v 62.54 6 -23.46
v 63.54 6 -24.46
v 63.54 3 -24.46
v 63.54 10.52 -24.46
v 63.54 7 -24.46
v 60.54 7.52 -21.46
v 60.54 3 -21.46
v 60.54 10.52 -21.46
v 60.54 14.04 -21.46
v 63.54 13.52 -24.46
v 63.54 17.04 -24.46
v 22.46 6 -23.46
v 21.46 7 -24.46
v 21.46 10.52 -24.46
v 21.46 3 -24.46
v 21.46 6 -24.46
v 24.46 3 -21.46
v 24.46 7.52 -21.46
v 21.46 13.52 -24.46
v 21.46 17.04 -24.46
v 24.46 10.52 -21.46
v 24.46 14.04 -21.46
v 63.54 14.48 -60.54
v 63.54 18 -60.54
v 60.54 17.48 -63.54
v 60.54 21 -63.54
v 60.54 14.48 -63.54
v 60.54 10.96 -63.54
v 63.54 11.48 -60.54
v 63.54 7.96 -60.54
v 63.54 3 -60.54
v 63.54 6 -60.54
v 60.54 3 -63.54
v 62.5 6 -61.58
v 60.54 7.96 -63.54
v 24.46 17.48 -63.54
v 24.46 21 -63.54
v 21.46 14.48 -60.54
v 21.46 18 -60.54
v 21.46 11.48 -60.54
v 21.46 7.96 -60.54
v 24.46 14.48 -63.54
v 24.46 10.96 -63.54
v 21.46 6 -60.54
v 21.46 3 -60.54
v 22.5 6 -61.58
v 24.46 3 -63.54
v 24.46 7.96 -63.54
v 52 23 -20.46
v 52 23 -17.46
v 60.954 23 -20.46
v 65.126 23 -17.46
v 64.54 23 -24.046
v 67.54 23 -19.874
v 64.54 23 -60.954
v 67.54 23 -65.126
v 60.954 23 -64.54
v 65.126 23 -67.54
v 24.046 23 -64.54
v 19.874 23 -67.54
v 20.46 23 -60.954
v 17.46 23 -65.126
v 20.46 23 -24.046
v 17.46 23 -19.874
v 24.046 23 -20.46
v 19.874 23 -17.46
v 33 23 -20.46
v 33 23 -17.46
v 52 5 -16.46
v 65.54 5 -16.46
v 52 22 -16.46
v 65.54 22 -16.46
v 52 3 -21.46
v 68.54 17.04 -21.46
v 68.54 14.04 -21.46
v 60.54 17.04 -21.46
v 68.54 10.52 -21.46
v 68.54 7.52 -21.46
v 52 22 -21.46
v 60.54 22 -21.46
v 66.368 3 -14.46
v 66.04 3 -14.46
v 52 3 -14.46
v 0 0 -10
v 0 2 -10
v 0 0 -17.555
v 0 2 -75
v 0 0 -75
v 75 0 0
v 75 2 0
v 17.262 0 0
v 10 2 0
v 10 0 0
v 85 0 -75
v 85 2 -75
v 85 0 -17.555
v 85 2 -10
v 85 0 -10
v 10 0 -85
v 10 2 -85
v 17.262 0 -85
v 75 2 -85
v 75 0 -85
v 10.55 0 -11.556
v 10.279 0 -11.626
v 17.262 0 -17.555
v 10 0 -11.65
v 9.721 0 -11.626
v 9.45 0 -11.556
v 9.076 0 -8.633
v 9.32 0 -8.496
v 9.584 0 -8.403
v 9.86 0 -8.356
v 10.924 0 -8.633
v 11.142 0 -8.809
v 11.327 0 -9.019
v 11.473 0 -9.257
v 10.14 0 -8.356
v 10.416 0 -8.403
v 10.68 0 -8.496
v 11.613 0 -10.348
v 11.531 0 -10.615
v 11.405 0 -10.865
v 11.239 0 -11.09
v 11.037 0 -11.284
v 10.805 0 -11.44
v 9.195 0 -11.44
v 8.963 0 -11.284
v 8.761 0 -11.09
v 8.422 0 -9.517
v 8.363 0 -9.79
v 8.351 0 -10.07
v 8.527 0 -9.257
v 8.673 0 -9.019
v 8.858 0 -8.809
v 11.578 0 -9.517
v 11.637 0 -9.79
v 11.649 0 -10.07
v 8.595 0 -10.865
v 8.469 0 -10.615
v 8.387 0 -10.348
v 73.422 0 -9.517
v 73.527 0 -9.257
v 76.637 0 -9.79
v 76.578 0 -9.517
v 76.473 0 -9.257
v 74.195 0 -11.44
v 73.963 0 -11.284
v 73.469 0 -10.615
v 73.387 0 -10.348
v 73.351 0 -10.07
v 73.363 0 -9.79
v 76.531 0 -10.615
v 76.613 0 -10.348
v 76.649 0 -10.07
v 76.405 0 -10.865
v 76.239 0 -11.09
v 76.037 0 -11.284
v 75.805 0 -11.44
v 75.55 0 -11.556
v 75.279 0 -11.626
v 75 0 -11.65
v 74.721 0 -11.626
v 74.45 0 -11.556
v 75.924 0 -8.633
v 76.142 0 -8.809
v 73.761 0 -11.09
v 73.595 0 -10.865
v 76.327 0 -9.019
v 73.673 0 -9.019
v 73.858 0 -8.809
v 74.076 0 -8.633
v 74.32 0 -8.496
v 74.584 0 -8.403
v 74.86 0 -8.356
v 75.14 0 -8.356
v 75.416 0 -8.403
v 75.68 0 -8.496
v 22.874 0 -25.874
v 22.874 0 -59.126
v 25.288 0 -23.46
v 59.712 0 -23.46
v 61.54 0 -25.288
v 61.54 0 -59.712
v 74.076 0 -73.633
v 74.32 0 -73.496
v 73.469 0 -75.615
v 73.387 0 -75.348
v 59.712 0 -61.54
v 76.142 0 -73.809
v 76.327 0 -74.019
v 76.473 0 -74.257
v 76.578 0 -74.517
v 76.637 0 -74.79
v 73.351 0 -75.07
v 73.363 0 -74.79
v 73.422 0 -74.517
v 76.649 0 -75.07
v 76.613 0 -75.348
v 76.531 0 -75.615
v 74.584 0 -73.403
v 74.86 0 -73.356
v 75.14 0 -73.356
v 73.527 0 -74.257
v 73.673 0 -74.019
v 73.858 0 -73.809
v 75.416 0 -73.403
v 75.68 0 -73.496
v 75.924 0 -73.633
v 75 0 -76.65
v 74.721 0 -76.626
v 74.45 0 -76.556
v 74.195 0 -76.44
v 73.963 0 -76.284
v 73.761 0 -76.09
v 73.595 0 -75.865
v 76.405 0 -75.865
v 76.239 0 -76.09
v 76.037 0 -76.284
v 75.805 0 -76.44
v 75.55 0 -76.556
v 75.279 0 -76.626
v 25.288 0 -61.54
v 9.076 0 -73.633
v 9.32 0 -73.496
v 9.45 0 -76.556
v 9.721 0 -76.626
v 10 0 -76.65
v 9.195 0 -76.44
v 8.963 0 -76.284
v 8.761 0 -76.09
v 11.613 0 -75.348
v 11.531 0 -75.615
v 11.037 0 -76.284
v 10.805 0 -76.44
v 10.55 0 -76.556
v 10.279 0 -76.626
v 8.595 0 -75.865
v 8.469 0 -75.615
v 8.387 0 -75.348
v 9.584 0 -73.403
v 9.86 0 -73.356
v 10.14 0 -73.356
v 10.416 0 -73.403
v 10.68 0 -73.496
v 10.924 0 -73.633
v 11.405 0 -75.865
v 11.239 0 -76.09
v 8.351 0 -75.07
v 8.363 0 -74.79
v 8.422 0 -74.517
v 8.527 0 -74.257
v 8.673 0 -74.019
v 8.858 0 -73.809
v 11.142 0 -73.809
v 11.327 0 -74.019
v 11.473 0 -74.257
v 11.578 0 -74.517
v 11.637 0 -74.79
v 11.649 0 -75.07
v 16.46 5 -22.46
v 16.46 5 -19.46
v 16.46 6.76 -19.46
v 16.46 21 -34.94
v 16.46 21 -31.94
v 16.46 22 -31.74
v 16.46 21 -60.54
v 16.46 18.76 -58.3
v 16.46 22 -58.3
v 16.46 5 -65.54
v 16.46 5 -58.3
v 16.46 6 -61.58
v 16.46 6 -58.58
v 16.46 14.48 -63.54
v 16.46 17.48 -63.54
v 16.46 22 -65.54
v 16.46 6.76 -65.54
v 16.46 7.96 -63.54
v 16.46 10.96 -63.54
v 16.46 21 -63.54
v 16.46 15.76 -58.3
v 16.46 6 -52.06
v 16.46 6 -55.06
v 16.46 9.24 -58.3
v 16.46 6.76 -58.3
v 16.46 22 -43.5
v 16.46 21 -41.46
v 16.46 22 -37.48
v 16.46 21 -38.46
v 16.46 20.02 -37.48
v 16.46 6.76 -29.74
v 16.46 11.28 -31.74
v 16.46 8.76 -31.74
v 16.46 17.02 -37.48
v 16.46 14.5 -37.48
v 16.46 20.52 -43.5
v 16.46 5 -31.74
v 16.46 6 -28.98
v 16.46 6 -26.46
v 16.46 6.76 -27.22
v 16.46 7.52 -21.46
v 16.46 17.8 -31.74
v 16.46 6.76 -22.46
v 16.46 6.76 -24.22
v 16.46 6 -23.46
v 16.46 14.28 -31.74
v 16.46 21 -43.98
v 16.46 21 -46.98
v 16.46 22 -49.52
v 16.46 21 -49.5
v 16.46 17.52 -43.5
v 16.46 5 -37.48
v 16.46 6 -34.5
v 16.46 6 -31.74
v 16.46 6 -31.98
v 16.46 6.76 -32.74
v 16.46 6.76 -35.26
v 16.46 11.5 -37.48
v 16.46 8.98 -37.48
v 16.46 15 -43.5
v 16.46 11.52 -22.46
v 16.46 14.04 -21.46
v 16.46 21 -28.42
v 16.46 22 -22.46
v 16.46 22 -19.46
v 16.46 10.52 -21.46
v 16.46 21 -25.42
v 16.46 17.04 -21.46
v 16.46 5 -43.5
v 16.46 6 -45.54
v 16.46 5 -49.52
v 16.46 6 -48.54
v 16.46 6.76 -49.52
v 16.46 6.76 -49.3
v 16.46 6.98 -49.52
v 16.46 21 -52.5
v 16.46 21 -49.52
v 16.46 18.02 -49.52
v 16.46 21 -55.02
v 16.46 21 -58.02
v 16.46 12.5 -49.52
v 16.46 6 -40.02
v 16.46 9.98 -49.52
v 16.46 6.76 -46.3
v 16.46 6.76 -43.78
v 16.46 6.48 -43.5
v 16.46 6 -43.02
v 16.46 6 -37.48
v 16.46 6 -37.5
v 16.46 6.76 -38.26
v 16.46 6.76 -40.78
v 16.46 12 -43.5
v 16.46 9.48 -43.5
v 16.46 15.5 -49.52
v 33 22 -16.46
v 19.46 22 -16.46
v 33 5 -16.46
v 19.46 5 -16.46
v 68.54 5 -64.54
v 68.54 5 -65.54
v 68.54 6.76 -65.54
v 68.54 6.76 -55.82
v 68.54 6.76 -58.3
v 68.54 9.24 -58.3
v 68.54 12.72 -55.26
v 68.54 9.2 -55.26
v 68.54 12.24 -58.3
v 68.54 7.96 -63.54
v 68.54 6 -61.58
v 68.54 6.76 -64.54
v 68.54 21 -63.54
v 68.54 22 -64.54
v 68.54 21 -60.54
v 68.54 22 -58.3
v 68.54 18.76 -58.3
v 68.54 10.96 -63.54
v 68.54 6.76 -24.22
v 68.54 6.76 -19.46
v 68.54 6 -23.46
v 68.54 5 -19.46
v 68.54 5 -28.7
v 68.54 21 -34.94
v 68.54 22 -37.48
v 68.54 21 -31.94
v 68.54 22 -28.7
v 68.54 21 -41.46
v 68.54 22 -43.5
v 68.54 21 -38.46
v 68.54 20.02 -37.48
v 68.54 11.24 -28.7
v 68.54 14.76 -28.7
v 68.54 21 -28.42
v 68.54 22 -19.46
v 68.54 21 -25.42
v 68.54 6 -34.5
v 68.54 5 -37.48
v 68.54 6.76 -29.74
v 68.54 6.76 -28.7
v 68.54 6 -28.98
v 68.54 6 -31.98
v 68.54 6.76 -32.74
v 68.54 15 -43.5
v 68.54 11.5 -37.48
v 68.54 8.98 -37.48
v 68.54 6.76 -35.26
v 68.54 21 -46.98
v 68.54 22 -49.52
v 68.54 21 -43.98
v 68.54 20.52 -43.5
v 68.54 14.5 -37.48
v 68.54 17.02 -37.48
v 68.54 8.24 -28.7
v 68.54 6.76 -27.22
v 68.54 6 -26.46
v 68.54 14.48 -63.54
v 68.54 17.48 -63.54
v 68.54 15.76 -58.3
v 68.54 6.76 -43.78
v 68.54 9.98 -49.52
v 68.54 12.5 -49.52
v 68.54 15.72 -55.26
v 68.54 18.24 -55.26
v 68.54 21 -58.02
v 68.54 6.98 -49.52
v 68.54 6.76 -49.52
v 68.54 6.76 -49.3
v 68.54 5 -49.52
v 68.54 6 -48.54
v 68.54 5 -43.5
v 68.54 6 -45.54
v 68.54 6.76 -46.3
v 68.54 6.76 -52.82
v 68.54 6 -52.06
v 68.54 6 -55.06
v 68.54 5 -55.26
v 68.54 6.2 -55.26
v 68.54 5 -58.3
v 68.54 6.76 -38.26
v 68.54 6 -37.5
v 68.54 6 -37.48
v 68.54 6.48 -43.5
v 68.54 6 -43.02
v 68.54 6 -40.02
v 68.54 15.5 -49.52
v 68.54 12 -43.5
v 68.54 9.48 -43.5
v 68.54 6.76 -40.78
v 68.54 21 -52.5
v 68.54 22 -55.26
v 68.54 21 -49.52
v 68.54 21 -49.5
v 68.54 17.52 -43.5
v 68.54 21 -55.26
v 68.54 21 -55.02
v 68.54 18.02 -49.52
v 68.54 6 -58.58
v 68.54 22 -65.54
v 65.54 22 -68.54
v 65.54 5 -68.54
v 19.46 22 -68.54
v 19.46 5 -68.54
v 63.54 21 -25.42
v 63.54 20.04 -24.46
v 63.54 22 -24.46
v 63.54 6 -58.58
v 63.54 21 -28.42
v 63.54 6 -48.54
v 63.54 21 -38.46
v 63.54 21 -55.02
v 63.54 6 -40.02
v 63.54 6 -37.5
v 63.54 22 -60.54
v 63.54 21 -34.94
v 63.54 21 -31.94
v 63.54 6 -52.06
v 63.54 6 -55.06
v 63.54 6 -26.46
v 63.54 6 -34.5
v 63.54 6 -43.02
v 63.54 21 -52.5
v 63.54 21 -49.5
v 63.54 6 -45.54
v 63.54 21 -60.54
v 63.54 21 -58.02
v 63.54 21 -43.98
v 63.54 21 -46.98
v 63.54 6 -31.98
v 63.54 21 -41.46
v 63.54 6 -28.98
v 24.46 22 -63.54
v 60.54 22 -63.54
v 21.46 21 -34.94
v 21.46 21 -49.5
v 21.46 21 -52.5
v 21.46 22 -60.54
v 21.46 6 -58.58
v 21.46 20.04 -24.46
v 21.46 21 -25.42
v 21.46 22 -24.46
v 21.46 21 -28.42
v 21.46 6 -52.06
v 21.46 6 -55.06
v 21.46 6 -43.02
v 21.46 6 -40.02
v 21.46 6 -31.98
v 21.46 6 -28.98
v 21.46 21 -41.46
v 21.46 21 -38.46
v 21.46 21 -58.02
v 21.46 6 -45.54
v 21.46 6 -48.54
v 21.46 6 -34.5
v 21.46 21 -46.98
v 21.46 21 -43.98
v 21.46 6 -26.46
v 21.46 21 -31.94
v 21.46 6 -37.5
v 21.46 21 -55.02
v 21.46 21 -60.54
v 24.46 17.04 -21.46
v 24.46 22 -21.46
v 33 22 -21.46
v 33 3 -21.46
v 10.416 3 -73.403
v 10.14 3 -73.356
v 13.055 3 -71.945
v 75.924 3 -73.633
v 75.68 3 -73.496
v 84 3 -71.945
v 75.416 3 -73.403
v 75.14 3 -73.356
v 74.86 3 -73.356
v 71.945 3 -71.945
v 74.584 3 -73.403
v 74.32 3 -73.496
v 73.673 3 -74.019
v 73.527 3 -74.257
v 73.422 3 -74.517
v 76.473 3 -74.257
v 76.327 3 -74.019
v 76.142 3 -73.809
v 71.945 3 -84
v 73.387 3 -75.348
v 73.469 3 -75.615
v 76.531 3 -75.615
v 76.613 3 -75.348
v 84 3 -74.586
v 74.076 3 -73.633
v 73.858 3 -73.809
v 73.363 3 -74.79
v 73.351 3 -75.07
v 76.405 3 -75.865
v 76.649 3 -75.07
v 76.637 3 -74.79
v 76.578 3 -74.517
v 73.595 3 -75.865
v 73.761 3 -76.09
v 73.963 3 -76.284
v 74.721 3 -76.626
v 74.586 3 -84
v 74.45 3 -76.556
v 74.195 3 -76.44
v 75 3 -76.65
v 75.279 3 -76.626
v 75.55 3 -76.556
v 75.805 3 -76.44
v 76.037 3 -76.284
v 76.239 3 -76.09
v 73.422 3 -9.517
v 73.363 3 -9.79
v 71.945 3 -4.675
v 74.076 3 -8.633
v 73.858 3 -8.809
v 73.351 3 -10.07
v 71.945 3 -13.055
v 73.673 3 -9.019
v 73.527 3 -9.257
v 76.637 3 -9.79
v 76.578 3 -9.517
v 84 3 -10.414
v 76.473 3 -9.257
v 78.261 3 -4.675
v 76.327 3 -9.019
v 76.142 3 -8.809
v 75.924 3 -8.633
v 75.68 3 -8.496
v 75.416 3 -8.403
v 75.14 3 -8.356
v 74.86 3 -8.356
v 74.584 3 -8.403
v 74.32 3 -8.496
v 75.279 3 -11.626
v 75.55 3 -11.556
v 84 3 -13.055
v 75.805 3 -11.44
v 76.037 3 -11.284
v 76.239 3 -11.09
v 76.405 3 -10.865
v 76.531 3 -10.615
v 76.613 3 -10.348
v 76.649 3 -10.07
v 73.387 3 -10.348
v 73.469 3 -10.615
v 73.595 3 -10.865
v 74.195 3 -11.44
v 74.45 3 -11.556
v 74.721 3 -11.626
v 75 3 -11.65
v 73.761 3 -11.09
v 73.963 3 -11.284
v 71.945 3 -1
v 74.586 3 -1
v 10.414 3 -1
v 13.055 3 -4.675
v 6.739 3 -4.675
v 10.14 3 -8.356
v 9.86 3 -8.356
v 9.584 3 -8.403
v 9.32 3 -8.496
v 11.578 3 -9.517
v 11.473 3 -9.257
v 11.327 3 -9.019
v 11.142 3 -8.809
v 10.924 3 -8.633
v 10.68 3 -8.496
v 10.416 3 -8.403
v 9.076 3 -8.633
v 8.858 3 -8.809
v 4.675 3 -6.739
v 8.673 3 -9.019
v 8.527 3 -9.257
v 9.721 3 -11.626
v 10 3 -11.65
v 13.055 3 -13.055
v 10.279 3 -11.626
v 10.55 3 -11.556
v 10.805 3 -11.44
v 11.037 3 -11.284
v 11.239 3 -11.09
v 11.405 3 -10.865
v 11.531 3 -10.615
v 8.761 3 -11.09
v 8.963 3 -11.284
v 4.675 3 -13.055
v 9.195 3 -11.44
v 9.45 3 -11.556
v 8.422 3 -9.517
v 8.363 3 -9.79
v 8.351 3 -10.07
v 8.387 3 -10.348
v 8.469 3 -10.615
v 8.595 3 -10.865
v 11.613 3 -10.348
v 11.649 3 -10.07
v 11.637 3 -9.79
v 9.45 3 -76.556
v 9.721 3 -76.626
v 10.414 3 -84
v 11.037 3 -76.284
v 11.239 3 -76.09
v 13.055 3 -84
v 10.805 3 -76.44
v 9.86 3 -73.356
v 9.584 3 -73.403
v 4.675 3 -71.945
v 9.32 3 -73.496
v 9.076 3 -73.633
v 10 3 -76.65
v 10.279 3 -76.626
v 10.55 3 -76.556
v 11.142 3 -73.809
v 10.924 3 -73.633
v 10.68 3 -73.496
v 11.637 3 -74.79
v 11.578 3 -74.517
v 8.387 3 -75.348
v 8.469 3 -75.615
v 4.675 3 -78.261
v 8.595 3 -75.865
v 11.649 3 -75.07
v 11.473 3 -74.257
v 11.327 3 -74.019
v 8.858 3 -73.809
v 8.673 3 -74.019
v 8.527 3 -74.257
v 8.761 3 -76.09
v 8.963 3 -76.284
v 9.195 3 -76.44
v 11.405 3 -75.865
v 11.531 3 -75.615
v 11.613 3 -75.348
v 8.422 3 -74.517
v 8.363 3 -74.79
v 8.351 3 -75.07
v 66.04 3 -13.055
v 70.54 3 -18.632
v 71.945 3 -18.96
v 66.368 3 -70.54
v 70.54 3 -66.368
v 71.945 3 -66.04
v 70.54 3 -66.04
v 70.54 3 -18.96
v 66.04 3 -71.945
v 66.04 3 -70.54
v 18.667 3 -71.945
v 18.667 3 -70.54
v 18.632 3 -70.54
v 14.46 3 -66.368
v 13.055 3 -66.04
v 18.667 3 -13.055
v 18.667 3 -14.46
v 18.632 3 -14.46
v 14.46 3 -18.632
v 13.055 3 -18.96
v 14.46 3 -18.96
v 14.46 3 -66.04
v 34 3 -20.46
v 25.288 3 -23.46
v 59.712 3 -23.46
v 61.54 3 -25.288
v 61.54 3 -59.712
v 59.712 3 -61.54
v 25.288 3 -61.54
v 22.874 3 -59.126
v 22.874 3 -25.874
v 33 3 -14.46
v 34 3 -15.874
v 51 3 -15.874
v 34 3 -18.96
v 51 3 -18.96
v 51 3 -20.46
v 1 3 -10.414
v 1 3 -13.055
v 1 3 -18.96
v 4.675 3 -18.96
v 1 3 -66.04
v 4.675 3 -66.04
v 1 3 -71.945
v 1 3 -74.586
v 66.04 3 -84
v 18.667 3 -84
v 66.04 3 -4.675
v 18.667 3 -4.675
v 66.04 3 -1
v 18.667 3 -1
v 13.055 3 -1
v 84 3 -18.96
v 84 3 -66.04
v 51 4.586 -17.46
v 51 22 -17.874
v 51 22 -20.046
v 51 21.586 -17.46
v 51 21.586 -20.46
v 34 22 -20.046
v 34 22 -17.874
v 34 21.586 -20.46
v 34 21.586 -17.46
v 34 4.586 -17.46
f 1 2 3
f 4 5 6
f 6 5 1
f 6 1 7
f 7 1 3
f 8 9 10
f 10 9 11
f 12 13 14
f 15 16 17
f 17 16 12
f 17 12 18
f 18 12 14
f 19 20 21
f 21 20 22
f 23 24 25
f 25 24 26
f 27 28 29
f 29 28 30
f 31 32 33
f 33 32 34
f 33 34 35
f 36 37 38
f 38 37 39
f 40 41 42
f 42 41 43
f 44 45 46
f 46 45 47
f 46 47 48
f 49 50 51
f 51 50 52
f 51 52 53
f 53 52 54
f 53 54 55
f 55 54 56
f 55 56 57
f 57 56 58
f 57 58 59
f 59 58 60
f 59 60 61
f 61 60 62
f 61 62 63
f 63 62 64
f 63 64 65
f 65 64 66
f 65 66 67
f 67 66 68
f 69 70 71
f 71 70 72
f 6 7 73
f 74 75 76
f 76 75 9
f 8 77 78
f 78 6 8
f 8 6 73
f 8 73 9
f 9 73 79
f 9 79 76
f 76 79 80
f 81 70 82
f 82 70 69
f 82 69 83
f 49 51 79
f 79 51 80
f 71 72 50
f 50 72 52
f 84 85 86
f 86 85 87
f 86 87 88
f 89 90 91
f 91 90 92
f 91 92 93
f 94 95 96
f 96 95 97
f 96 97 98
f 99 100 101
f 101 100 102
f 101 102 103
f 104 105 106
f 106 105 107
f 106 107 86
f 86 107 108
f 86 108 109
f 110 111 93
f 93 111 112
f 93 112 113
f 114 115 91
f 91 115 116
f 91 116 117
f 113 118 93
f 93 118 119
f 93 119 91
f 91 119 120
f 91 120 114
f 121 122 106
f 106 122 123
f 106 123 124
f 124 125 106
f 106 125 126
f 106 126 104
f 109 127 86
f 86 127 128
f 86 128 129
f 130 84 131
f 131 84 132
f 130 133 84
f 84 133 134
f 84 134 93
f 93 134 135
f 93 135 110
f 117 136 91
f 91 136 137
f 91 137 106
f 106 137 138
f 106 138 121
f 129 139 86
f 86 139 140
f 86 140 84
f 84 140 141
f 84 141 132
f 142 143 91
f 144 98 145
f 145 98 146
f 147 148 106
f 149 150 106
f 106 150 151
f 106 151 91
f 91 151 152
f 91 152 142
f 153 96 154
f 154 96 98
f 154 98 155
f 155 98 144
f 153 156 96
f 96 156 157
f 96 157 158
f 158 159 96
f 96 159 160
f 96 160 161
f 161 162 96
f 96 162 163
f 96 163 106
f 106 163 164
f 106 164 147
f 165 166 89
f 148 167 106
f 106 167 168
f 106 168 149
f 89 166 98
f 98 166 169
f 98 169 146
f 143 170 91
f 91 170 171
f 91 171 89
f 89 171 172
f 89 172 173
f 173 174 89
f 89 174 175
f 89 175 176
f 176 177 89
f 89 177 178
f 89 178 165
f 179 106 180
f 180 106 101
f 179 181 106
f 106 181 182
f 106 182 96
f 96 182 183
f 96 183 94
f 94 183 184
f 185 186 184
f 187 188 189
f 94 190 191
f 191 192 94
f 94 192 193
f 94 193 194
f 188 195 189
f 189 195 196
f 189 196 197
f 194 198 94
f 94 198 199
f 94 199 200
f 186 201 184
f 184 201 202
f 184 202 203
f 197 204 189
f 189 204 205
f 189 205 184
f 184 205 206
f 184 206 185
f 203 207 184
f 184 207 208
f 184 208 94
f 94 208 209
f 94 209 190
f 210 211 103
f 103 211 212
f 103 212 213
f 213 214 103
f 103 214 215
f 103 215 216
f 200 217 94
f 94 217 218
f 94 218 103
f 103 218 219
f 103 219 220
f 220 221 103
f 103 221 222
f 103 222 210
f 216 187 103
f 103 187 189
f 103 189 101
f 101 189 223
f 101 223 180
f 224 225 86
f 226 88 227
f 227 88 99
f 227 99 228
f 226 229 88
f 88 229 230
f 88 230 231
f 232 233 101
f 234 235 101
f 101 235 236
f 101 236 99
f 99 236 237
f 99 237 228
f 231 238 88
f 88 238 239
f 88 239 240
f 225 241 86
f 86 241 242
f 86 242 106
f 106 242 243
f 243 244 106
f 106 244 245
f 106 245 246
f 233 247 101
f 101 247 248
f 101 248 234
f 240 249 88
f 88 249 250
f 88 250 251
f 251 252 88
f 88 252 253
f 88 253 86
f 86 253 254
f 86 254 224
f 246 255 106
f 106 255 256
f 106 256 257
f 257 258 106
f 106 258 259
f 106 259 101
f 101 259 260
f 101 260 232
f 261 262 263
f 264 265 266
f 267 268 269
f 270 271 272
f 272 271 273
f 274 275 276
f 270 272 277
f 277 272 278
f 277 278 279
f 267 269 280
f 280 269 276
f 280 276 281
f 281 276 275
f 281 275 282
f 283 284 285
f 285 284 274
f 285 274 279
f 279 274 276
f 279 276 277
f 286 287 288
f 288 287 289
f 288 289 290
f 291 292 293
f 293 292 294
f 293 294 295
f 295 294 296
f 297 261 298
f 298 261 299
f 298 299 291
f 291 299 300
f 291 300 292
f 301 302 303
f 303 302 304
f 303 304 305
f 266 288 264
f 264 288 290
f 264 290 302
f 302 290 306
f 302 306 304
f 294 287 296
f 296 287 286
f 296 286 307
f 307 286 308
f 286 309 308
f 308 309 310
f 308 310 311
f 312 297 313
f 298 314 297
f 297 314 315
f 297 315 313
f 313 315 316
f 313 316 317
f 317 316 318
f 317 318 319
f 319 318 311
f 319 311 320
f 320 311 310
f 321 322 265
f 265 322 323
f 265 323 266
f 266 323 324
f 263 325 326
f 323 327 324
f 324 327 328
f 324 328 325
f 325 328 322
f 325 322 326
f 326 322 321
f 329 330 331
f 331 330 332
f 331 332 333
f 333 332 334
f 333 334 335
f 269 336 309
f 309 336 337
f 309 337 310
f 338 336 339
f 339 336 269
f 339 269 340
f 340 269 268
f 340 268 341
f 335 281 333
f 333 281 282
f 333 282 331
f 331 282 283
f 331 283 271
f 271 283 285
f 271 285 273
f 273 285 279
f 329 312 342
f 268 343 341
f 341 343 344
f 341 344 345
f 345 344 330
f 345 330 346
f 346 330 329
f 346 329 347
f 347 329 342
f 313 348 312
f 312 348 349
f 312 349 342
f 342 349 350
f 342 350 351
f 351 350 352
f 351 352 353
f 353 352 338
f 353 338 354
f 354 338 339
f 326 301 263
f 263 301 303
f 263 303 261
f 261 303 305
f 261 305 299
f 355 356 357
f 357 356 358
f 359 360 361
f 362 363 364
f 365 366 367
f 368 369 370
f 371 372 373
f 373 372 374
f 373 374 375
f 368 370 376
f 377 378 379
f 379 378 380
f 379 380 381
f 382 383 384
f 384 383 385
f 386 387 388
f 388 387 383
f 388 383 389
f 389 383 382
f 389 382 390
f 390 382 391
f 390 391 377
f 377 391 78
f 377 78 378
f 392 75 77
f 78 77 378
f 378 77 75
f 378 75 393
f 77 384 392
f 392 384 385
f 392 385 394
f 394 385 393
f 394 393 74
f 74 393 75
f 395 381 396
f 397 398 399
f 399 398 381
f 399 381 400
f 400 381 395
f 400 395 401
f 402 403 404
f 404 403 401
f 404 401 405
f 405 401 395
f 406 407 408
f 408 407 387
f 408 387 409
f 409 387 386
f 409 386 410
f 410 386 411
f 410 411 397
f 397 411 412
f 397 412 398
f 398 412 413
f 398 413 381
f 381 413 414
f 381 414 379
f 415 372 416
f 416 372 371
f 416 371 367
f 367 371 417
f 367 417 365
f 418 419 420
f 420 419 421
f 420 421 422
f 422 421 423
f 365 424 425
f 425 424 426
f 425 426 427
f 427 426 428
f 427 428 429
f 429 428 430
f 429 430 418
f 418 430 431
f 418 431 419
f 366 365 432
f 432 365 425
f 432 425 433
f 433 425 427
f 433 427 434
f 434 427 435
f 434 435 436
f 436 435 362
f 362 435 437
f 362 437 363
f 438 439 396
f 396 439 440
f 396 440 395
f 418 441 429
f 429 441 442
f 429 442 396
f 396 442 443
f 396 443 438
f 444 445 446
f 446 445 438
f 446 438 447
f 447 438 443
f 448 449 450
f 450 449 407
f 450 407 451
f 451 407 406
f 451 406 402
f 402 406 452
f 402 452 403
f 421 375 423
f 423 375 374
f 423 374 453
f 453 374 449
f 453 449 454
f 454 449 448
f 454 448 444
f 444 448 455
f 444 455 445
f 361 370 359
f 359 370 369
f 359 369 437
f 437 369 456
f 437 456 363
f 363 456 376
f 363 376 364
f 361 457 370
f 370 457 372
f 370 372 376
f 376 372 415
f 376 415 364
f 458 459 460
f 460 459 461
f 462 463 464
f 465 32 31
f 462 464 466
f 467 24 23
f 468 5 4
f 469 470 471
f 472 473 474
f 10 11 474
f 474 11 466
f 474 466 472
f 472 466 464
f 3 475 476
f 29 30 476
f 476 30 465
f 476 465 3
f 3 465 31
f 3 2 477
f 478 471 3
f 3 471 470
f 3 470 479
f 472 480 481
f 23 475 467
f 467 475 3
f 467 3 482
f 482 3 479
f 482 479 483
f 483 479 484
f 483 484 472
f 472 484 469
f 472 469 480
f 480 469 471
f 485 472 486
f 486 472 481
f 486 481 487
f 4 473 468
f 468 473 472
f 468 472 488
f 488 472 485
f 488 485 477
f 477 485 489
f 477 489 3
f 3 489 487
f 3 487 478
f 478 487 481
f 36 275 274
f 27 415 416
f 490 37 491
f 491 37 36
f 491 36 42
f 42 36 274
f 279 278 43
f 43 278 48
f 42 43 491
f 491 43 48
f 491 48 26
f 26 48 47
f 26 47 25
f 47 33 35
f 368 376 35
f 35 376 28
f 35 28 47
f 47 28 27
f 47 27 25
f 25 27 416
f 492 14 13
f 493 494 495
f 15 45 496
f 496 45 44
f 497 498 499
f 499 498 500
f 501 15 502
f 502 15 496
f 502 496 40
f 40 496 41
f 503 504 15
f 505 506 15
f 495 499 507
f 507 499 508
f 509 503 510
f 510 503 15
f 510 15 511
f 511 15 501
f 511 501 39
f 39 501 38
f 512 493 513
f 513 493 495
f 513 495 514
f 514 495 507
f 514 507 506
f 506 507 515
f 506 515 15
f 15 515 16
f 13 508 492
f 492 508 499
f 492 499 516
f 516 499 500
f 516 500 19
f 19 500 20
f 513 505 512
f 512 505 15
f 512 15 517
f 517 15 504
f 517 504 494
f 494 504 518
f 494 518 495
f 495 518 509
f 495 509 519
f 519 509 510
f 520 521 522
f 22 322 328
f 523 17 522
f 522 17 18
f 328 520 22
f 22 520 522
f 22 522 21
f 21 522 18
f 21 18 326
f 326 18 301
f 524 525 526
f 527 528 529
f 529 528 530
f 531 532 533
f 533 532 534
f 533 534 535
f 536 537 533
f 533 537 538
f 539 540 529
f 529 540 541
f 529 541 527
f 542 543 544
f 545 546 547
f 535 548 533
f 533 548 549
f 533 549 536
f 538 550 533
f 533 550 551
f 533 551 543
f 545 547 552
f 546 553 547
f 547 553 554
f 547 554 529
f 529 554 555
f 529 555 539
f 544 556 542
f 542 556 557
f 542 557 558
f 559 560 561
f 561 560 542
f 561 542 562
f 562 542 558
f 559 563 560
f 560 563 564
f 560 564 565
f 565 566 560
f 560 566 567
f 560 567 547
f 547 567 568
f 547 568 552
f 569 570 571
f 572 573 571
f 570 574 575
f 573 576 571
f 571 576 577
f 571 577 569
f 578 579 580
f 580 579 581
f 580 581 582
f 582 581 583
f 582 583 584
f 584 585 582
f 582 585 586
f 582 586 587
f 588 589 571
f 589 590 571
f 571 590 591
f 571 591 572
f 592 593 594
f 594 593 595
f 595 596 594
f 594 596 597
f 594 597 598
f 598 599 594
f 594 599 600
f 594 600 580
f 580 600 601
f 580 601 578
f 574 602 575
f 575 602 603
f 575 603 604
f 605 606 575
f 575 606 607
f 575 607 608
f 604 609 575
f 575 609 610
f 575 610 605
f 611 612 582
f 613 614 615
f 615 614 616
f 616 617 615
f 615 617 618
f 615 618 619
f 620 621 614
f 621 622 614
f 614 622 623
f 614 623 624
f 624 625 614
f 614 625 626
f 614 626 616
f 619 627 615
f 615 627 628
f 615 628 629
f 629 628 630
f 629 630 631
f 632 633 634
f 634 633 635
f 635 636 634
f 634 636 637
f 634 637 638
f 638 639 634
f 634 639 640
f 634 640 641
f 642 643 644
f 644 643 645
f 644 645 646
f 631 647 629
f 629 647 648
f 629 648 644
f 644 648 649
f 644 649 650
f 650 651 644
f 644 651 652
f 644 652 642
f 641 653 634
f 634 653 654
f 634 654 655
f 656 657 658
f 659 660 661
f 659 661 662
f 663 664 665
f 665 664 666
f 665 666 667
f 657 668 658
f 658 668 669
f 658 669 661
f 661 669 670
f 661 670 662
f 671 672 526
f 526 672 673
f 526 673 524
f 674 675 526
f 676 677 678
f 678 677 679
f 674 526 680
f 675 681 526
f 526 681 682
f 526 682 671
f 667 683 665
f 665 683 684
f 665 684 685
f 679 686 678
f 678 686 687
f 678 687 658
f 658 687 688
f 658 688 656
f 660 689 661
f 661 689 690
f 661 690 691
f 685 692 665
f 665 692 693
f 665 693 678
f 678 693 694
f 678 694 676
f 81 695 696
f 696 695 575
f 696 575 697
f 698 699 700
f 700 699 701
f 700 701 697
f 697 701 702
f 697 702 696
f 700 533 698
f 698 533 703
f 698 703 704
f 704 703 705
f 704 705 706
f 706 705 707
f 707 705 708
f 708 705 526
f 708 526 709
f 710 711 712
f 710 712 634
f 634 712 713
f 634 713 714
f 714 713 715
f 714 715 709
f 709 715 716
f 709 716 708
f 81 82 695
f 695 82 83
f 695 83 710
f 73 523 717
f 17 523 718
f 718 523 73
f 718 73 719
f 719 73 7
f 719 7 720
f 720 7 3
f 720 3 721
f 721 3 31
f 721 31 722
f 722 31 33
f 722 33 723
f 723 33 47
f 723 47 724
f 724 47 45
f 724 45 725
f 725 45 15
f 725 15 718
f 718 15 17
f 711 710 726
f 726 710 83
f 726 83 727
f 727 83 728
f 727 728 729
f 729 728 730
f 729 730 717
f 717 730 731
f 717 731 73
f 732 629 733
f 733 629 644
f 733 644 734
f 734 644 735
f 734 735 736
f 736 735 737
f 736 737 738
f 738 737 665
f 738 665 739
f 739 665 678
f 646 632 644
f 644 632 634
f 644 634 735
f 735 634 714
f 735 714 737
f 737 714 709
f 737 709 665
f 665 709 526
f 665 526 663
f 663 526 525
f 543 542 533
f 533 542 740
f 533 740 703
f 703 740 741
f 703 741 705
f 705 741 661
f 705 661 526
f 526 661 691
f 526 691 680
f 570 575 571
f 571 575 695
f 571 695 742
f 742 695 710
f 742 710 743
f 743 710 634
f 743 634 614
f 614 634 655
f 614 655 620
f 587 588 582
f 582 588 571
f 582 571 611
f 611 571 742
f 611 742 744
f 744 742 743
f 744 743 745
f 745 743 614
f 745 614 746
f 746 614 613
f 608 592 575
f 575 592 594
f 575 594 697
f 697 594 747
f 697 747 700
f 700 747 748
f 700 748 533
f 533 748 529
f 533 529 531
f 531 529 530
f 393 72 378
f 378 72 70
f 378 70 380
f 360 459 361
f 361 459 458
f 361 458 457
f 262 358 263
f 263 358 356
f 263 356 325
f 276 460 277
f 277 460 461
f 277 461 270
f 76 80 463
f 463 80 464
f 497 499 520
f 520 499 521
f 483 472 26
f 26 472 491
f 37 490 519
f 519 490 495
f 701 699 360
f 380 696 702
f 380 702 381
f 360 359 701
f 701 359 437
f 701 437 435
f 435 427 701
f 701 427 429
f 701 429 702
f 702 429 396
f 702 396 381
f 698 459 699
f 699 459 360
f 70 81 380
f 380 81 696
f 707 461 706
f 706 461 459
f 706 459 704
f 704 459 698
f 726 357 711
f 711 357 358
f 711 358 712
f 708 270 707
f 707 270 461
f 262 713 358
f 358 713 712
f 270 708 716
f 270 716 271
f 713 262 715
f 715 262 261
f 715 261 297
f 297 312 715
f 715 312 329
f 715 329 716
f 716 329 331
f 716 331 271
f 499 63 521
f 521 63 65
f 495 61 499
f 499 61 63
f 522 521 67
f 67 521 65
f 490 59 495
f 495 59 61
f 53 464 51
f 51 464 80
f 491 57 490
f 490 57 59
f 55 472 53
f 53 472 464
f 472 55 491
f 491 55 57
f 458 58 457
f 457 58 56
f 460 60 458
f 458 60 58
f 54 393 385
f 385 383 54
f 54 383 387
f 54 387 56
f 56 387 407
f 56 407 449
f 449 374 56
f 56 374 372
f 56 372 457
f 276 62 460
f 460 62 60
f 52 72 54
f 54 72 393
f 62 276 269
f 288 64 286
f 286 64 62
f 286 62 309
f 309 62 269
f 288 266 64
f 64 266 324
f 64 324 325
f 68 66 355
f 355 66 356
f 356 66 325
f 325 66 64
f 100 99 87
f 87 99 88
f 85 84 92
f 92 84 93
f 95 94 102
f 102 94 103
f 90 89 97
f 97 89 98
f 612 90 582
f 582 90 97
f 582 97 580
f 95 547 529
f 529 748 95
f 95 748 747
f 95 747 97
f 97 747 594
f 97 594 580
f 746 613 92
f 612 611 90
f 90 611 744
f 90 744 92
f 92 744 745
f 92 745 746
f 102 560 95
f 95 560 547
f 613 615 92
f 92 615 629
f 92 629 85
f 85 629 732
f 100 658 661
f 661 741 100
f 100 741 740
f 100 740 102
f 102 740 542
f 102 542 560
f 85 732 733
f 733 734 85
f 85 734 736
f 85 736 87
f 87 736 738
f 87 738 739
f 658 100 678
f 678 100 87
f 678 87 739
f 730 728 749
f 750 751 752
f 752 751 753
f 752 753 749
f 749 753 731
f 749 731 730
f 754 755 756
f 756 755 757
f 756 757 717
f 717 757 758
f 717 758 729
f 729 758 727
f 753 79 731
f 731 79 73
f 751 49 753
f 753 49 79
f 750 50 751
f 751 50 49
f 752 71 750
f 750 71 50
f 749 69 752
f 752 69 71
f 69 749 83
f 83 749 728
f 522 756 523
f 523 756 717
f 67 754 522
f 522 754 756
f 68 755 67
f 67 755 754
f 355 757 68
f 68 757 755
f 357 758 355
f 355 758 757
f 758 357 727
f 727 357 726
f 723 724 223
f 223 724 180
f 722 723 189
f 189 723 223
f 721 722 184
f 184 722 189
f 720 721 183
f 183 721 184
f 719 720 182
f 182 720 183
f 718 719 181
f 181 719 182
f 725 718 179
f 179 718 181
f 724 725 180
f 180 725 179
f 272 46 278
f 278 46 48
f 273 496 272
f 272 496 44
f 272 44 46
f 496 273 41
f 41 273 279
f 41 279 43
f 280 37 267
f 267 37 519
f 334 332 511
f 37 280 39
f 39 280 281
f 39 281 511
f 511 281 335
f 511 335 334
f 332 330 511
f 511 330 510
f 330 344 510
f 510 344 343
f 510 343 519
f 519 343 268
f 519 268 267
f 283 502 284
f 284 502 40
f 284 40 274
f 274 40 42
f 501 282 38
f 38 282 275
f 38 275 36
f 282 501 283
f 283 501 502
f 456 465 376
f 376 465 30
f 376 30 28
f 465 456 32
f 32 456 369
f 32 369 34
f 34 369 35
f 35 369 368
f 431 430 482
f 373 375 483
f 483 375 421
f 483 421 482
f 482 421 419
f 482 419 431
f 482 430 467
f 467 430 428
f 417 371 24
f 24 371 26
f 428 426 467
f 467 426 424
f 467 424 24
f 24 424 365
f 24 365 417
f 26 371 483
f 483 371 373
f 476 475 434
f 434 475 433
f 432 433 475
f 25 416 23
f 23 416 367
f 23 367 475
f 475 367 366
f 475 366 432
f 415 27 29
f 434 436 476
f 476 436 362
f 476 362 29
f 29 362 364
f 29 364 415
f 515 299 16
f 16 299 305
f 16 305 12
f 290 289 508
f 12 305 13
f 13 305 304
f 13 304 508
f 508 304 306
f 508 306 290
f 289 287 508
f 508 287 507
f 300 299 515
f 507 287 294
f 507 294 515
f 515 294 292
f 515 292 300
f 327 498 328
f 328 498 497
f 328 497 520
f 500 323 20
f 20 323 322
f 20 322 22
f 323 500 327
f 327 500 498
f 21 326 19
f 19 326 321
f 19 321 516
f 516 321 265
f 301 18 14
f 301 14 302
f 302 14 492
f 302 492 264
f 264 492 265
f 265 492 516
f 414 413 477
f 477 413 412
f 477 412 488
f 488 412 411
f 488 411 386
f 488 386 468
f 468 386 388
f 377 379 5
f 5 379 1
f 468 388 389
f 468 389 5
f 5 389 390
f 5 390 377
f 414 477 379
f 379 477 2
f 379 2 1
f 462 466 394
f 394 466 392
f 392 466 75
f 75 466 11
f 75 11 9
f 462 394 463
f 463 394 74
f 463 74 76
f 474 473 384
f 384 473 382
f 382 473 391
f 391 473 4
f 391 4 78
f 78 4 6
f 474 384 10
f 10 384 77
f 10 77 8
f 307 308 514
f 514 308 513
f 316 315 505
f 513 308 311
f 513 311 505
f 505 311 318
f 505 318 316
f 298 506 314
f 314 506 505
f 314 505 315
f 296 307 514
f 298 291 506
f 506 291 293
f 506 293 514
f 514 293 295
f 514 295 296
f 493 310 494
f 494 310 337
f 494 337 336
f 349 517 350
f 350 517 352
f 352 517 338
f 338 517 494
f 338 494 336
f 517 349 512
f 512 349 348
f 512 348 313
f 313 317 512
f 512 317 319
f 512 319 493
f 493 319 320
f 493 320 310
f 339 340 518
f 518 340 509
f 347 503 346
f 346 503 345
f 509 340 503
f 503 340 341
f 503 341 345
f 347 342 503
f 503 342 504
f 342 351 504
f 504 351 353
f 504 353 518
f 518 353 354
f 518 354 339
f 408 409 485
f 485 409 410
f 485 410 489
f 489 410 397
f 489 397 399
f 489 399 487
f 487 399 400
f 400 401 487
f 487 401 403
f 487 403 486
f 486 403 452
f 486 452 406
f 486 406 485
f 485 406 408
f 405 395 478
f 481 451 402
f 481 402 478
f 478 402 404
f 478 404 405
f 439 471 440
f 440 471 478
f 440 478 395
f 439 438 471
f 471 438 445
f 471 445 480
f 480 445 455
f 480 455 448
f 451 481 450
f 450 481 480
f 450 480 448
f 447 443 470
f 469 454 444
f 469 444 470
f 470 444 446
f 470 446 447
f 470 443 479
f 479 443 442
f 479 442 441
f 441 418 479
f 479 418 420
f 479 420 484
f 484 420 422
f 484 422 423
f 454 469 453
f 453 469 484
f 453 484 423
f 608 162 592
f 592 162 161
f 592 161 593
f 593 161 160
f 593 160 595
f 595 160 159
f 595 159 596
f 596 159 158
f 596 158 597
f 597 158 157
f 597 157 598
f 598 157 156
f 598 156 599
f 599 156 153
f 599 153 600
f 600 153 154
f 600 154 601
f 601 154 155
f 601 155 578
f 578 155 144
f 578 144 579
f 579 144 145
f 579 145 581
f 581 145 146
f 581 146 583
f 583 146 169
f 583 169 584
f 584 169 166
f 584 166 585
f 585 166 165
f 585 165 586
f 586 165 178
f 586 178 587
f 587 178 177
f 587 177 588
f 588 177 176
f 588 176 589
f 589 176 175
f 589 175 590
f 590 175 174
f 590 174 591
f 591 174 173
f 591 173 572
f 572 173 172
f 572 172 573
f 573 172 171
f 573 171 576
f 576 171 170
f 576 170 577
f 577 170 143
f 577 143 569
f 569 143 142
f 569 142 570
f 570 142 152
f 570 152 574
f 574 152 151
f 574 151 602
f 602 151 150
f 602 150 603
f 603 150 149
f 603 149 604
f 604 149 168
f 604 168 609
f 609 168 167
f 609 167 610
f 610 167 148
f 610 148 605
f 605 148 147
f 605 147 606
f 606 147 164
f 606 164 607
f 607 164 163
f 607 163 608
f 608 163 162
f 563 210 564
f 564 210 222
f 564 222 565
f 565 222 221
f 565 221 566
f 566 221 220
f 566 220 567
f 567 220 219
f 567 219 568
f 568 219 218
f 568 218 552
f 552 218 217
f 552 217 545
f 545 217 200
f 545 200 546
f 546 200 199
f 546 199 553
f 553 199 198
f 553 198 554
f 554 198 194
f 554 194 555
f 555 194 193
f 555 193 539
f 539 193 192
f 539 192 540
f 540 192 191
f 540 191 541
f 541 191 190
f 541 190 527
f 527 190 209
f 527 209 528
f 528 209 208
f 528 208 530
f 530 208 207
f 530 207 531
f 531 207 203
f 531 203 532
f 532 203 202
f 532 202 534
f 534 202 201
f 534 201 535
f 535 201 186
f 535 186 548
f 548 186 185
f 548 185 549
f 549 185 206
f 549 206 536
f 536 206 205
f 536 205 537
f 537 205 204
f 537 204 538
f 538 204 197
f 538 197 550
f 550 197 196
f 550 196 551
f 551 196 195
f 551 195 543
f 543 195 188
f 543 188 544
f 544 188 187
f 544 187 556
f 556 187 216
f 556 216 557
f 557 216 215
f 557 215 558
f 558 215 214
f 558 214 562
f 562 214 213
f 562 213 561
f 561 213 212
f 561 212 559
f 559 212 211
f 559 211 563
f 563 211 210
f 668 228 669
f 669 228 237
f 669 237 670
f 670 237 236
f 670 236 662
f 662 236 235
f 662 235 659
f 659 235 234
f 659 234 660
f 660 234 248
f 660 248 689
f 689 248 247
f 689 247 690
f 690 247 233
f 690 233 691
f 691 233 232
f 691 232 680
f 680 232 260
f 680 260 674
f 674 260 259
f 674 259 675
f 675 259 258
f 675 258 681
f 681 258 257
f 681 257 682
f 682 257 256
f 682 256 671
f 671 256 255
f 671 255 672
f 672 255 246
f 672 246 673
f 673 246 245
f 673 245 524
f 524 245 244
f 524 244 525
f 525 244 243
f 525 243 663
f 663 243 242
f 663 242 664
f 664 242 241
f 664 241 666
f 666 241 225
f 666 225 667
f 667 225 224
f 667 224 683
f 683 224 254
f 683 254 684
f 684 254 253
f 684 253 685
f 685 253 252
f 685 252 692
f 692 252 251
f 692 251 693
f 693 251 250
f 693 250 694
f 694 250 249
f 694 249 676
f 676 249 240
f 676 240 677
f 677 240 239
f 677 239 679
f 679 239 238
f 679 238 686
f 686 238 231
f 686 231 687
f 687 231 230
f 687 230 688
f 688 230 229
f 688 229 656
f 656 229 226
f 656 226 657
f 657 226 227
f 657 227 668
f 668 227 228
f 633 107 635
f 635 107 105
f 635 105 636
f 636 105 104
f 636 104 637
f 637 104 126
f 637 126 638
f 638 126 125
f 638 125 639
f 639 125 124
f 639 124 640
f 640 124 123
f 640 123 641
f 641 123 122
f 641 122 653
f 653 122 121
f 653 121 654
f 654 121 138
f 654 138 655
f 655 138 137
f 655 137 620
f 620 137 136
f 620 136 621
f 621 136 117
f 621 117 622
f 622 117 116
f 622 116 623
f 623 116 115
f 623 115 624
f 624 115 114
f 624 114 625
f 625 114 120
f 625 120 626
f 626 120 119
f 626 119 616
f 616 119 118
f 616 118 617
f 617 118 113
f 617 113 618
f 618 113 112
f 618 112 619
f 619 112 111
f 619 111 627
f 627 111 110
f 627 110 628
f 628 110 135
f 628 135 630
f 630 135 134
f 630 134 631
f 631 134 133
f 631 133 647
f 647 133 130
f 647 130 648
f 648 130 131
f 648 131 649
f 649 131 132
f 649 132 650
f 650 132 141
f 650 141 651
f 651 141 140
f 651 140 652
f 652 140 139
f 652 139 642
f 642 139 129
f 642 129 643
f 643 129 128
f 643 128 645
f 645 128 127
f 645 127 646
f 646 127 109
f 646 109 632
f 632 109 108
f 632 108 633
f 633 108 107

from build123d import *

# Parameters (mm, degrees)
SKETCH_1_W          = 85
SKETCH_1_H          = 85
EXTRUDE_1_DEPTH     = 3
SKETCH_2_W          = 52.08
SKETCH_2_H          = 52.08
SKETCH_2_W_2        = 42.08
SKETCH_2_H_2        = 42.08
EXTRUDE_2_DEPTH     = 20
CHAMFER_1_SIZE      = 3
CHAMFER_2_SIZE      = 2
CHAMFER_3_SIZE      = 1
CHAMFER_4_SIZE      = 10
CHAMFER_5_SIZE      = 1
CUT_EXTRUDE_1_REACH = 124.389
SKETCH_3_W          = 8.5
SKETCH_3_H          = 9.566393395
SKETCH_3_H_2        = 3
SKETCH_3_H_3        = 9.81159244
CHAMFER_6_SIZE      = 1
CUT_EXTRUDE_2_DEPTH = 10
CUT_EXTRUDE_4_DEPTH = 59
SKETCH_6_R          = 1.65
CUT_EXTRUDE_5_DEPTH = 10


with BuildPart() as part:
    # 草图1 → 凸台-拉伸1 (new body)
    with BuildSketch(Plane(origin=(0, 0, 0), x_dir=(1, 0, 0), z_dir=(0, 1, 0))):
        with Locations((42.5, 42.5)):
            Rectangle(SKETCH_1_W, SKETCH_1_H)
    extrude(amount=EXTRUDE_1_DEPTH)

    # 草图2 → 凸台-拉伸2 (add)
    with BuildSketch(Plane(origin=(0, 3, 0), x_dir=(1, 0, 0), z_dir=(0, 1, 0))):
        with Locations((42.5, 42.5)):
            Rectangle(SKETCH_2_W, SKETCH_2_H)
        with Locations((42.5, 42.5)):
            Rectangle(SKETCH_2_W_2, SKETCH_2_H_2, mode=Mode.SUBTRACT)
    extrude(amount=EXTRUDE_2_DEPTH)

    # 倒角1
    chamfer_1_edges = [part.edges().sort_by_distance(p)[0] for p in [
        (16.46, 13, -68.54),
        (16.46, 13, -16.46),
        (68.54, 13, -16.46),
        (68.54, 13, -68.54),
        (63.54, 13, -63.54),
        (21.46, 13, -63.54),
        (21.46, 13, -21.46),
        (63.54, 13, -21.46),
    ]]
    chamfer(chamfer_1_edges, length=CHAMFER_1_SIZE)

    # 倒角2
    chamfer_2_edges = [part.edges().sort_by_distance(p)[0] for p in [
        (68.54, 3, -42.5),
        (42.5, 3, -16.46),
        (42.5, 3, -68.54),
        (16.46, 3, -42.5),
        (67.04, 3, -17.96),
        (67.04, 3, -67.04),
        (17.96, 3, -17.96),
        (17.96, 3, -67.04),
    ]]
    chamfer(chamfer_2_edges, length=CHAMFER_2_SIZE)

    # 倒角3
    chamfer_3_edges = [part.edges().sort_by_distance(p)[0] for p in [
        (68.54, 23, -42.5),
        (42.5, 23, -16.46),
        (16.46, 23, -42.5),
        (42.5, 23, -68.54),
        (63.54, 23, -42.5),
        (42.5, 23, -21.46),
        (21.46, 23, -42.5),
        (42.5, 23, -63.54),
        (17.96, 23, -67.04),
        (17.96, 23, -17.96),
        (67.04, 23, -67.04),
        (67.04, 23, -17.96),
        (62.04, 23, -22.96),
        (22.96, 23, -22.96),
        (62.04, 23, -62.04),
        (22.96, 23, -62.04),
    ]]
    chamfer(chamfer_3_edges, length=CHAMFER_3_SIZE)

    # 倒角4
    chamfer_4_edges = [part.edges().sort_by_distance(p)[0] for p in [
        (0, 1.5, -85),
        (85, 1.5, -85),
        (85, 1.5, 0),
        (0, 1.5, 0),
    ]]
    chamfer(chamfer_4_edges, length=CHAMFER_4_SIZE)

    # 倒角5
    chamfer_5_edges = [part.edges().sort_by_distance(p)[0] for p in [
        (0, 3, -42.5),
        (42.5, 3, -85),
        (42.5, 3, 0),
        (85, 3, -42.5),
        (80, 3, -5),
        (80, 3, -80),
        (5, 3, -5),
        (5, 3, -80),
    ]]
    chamfer(chamfer_5_edges, length=CHAMFER_5_SIZE)

    # 切除-拉伸1: up to this face of the body (flat: up to its plane)
    cut_extrude_1_end = Plane(part.part.faces().sort_by_distance((42.5, 3, -42.5))[0])
    # 草图3 → 切除-拉伸1 (cut, up to the picked face)
    with BuildSketch(Plane(origin=(0, 23, 0), x_dir=(1, 0, 0), z_dir=(0, 1, 0)), mode=Mode.PRIVATE) as cut_extrude_1_sk1:
        with Locations((46.75, 12.676803303)):
            Rectangle(SKETCH_3_W, SKETCH_3_H)
    cut_extrude_1_tool1 = split(extrude(cut_extrude_1_sk1.sketch, amount=-CUT_EXTRUDE_1_REACH, mode=Mode.PRIVATE), bisect_by=cut_extrude_1_end, keep=Keep.BOTH, mode=Mode.PRIVATE)
    # 草图3 → 切除-拉伸1 (cut, up to the picked face)
    with BuildSketch(Plane(origin=(0, 23, 0), x_dir=(1, 0, 0), z_dir=(0, 1, 0)), mode=Mode.PRIVATE) as cut_extrude_1_sk2:
        with Locations((46.75, 18.96)):
            Rectangle(SKETCH_3_W, SKETCH_3_H_2)
    cut_extrude_1_tool2 = split(extrude(cut_extrude_1_sk2.sketch, amount=-CUT_EXTRUDE_1_REACH, mode=Mode.PRIVATE), bisect_by=cut_extrude_1_end, keep=Keep.BOTH, mode=Mode.PRIVATE)
    # 草图3 → 切除-拉伸1 (cut, up to the picked face)
    with BuildSketch(Plane(origin=(0, 23, 0), x_dir=(1, 0, 0), z_dir=(0, 1, 0)), mode=Mode.PRIVATE) as cut_extrude_1_sk3:
        with Locations((46.75, 25.36579622)):
            Rectangle(SKETCH_3_W, SKETCH_3_H_3)
    cut_extrude_1_tool3 = split(extrude(cut_extrude_1_sk3.sketch, amount=-CUT_EXTRUDE_1_REACH, mode=Mode.PRIVATE), bisect_by=cut_extrude_1_end, keep=Keep.BOTH, mode=Mode.PRIVATE)
    # 草图3 → 切除-拉伸1 (cut, up to the picked face)
    with BuildSketch(Plane(origin=(0, 23, 0), x_dir=(1, 0, 0), z_dir=(0, 1, 0)), mode=Mode.PRIVATE) as cut_extrude_1_sk4:
        with Locations((38.25, 25.36579622)):
            Rectangle(SKETCH_3_W, SKETCH_3_H_3)
    cut_extrude_1_tool4 = split(extrude(cut_extrude_1_sk4.sketch, amount=-CUT_EXTRUDE_1_REACH, mode=Mode.PRIVATE), bisect_by=cut_extrude_1_end, keep=Keep.BOTH, mode=Mode.PRIVATE)
    # 草图3 → 切除-拉伸1 (cut, up to the picked face)
    with BuildSketch(Plane(origin=(0, 23, 0), x_dir=(1, 0, 0), z_dir=(0, 1, 0)), mode=Mode.PRIVATE) as cut_extrude_1_sk5:
        with Locations((38.25, 18.96)):
            Rectangle(SKETCH_3_W, SKETCH_3_H_2)
    cut_extrude_1_tool5 = split(extrude(cut_extrude_1_sk5.sketch, amount=-CUT_EXTRUDE_1_REACH, mode=Mode.PRIVATE), bisect_by=cut_extrude_1_end, keep=Keep.BOTH, mode=Mode.PRIVATE)
    # 草图3 → 切除-拉伸1 (cut, up to the picked face)
    with BuildSketch(Plane(origin=(0, 23, 0), x_dir=(1, 0, 0), z_dir=(0, 1, 0)), mode=Mode.PRIVATE) as cut_extrude_1_sk6:
        with Locations((38.25, 12.676803303)):
            Rectangle(SKETCH_3_W, SKETCH_3_H)
    cut_extrude_1_tool6 = split(extrude(cut_extrude_1_sk6.sketch, amount=-CUT_EXTRUDE_1_REACH, mode=Mode.PRIVATE), bisect_by=cut_extrude_1_end, keep=Keep.BOTH, mode=Mode.PRIVATE)
    add(cut_extrude_1_tool1.solids().sort_by(Axis((46.75, 23, -12.676803), (0, -1, 0)))[0], mode=Mode.SUBTRACT)
    add(cut_extrude_1_tool2.solids().sort_by(Axis((46.75, 23, -18.96), (0, -1, 0)))[0], mode=Mode.SUBTRACT)
    add(cut_extrude_1_tool3.solids().sort_by(Axis((46.75, 23, -25.365796), (0, -1, 0)))[0], mode=Mode.SUBTRACT)
    add(cut_extrude_1_tool4.solids().sort_by(Axis((38.25, 23, -25.365796), (0, -1, 0)))[0], mode=Mode.SUBTRACT)
    add(cut_extrude_1_tool5.solids().sort_by(Axis((38.25, 23, -18.96), (0, -1, 0)))[0], mode=Mode.SUBTRACT)
    add(cut_extrude_1_tool6.solids().sort_by(Axis((38.25, 23, -12.676803), (0, -1, 0)))[0], mode=Mode.SUBTRACT)

    # 倒角6
    chamfer_6_edges = [part.edges().sort_by_distance(p)[0] for p in [
        (34, 22.5, -16.96),
        (51, 22.5, -16.96),
        (51, 12.5, -21.46),
        (51, 22.5, -20.96),
        (51, 23, -18.96),
        (34, 12.5, -21.46),
        (34, 22.5, -20.96),
        (34, 4, -15.46),
        (34, 13.5, -16.46),
        (51, 4, -15.46),
        (51, 13.5, -16.46),
        (34, 23, -18.96),
    ]]
    chamfer(chamfer_6_edges, length=CHAMFER_6_SIZE)

    # 草图4 → 切除-拉伸2 (cut)
    with BuildSketch(Plane(origin=(0, 3, 0), x_dir=(1, 0, 0), z_dir=(0, 1, 0))):
        Polygon((25.288427125, 61.54), (22.874213562, 59.125786438), (22.874213562, 25.874213562), (25.288427125, 23.46), (33, 23.46), (52, 23.46), (59.711572875, 23.46), (61.54, 25.288427125), (61.54, 59.711572875), (59.711572875, 61.54), align=None)
    extrude(amount=-CUT_EXTRUDE_2_DEPTH, mode=Mode.SUBTRACT)

    # 草图5 → 切除-拉伸4 (cut)
    with BuildSketch(Plane.ZY.offset(-16.46)):
        Polygon((-63.54, 10.96), (-63.54, 7.96), (-61.58, 6), (-58.58, 6), align=None)
        Polygon((-63.54, 17.48), (-63.54, 14.48), (-55.06, 6), (-52.06, 6), align=None)
        Polygon((-45.54, 6), (-60.54, 21), (-63.54, 21), (-48.54, 6), align=None)
        Polygon((-40.02, 6), (-55.02, 21), (-58.02, 21), (-43.02, 6), align=None)
        Polygon((-34.5, 6), (-49.5, 21), (-52.5, 21), (-37.5, 6), align=None)
        Polygon((-28.98, 6), (-43.98, 21), (-46.98, 21), (-31.98, 6), align=None)
        Polygon((-23.46, 6), (-38.46, 21), (-41.46, 21), (-26.46, 6), align=None)
        Polygon((-21.46, 7.52), (-21.46, 10.52), (-31.94, 21), (-34.94, 21), align=None)
        Polygon((-21.46, 14.04), (-21.46, 17.04), (-25.42, 21), (-28.42, 21), align=None)
    extrude(amount=-CUT_EXTRUDE_4_DEPTH, mode=Mode.SUBTRACT)

    # 草图6 → 切除-拉伸5 (cut)
    with BuildSketch(Plane.XZ):
        with Locations(Location((75, -10, 0), (0, 0, 270))):
            Circle(SKETCH_6_R)
        with Locations(Location((75, -75, 0), (0, 0, 270))):
            Circle(SKETCH_6_R)
        with Locations(Location((10, -75, 0), (0, 0, 270))):
            Circle(SKETCH_6_R)
        with Locations(Location((10, -10, 0), (0, 0, 270))):
            Circle(SKETCH_6_R)
    extrude(amount=-CUT_EXTRUDE_5_DEPTH, mode=Mode.SUBTRACT)


solid = part.part
